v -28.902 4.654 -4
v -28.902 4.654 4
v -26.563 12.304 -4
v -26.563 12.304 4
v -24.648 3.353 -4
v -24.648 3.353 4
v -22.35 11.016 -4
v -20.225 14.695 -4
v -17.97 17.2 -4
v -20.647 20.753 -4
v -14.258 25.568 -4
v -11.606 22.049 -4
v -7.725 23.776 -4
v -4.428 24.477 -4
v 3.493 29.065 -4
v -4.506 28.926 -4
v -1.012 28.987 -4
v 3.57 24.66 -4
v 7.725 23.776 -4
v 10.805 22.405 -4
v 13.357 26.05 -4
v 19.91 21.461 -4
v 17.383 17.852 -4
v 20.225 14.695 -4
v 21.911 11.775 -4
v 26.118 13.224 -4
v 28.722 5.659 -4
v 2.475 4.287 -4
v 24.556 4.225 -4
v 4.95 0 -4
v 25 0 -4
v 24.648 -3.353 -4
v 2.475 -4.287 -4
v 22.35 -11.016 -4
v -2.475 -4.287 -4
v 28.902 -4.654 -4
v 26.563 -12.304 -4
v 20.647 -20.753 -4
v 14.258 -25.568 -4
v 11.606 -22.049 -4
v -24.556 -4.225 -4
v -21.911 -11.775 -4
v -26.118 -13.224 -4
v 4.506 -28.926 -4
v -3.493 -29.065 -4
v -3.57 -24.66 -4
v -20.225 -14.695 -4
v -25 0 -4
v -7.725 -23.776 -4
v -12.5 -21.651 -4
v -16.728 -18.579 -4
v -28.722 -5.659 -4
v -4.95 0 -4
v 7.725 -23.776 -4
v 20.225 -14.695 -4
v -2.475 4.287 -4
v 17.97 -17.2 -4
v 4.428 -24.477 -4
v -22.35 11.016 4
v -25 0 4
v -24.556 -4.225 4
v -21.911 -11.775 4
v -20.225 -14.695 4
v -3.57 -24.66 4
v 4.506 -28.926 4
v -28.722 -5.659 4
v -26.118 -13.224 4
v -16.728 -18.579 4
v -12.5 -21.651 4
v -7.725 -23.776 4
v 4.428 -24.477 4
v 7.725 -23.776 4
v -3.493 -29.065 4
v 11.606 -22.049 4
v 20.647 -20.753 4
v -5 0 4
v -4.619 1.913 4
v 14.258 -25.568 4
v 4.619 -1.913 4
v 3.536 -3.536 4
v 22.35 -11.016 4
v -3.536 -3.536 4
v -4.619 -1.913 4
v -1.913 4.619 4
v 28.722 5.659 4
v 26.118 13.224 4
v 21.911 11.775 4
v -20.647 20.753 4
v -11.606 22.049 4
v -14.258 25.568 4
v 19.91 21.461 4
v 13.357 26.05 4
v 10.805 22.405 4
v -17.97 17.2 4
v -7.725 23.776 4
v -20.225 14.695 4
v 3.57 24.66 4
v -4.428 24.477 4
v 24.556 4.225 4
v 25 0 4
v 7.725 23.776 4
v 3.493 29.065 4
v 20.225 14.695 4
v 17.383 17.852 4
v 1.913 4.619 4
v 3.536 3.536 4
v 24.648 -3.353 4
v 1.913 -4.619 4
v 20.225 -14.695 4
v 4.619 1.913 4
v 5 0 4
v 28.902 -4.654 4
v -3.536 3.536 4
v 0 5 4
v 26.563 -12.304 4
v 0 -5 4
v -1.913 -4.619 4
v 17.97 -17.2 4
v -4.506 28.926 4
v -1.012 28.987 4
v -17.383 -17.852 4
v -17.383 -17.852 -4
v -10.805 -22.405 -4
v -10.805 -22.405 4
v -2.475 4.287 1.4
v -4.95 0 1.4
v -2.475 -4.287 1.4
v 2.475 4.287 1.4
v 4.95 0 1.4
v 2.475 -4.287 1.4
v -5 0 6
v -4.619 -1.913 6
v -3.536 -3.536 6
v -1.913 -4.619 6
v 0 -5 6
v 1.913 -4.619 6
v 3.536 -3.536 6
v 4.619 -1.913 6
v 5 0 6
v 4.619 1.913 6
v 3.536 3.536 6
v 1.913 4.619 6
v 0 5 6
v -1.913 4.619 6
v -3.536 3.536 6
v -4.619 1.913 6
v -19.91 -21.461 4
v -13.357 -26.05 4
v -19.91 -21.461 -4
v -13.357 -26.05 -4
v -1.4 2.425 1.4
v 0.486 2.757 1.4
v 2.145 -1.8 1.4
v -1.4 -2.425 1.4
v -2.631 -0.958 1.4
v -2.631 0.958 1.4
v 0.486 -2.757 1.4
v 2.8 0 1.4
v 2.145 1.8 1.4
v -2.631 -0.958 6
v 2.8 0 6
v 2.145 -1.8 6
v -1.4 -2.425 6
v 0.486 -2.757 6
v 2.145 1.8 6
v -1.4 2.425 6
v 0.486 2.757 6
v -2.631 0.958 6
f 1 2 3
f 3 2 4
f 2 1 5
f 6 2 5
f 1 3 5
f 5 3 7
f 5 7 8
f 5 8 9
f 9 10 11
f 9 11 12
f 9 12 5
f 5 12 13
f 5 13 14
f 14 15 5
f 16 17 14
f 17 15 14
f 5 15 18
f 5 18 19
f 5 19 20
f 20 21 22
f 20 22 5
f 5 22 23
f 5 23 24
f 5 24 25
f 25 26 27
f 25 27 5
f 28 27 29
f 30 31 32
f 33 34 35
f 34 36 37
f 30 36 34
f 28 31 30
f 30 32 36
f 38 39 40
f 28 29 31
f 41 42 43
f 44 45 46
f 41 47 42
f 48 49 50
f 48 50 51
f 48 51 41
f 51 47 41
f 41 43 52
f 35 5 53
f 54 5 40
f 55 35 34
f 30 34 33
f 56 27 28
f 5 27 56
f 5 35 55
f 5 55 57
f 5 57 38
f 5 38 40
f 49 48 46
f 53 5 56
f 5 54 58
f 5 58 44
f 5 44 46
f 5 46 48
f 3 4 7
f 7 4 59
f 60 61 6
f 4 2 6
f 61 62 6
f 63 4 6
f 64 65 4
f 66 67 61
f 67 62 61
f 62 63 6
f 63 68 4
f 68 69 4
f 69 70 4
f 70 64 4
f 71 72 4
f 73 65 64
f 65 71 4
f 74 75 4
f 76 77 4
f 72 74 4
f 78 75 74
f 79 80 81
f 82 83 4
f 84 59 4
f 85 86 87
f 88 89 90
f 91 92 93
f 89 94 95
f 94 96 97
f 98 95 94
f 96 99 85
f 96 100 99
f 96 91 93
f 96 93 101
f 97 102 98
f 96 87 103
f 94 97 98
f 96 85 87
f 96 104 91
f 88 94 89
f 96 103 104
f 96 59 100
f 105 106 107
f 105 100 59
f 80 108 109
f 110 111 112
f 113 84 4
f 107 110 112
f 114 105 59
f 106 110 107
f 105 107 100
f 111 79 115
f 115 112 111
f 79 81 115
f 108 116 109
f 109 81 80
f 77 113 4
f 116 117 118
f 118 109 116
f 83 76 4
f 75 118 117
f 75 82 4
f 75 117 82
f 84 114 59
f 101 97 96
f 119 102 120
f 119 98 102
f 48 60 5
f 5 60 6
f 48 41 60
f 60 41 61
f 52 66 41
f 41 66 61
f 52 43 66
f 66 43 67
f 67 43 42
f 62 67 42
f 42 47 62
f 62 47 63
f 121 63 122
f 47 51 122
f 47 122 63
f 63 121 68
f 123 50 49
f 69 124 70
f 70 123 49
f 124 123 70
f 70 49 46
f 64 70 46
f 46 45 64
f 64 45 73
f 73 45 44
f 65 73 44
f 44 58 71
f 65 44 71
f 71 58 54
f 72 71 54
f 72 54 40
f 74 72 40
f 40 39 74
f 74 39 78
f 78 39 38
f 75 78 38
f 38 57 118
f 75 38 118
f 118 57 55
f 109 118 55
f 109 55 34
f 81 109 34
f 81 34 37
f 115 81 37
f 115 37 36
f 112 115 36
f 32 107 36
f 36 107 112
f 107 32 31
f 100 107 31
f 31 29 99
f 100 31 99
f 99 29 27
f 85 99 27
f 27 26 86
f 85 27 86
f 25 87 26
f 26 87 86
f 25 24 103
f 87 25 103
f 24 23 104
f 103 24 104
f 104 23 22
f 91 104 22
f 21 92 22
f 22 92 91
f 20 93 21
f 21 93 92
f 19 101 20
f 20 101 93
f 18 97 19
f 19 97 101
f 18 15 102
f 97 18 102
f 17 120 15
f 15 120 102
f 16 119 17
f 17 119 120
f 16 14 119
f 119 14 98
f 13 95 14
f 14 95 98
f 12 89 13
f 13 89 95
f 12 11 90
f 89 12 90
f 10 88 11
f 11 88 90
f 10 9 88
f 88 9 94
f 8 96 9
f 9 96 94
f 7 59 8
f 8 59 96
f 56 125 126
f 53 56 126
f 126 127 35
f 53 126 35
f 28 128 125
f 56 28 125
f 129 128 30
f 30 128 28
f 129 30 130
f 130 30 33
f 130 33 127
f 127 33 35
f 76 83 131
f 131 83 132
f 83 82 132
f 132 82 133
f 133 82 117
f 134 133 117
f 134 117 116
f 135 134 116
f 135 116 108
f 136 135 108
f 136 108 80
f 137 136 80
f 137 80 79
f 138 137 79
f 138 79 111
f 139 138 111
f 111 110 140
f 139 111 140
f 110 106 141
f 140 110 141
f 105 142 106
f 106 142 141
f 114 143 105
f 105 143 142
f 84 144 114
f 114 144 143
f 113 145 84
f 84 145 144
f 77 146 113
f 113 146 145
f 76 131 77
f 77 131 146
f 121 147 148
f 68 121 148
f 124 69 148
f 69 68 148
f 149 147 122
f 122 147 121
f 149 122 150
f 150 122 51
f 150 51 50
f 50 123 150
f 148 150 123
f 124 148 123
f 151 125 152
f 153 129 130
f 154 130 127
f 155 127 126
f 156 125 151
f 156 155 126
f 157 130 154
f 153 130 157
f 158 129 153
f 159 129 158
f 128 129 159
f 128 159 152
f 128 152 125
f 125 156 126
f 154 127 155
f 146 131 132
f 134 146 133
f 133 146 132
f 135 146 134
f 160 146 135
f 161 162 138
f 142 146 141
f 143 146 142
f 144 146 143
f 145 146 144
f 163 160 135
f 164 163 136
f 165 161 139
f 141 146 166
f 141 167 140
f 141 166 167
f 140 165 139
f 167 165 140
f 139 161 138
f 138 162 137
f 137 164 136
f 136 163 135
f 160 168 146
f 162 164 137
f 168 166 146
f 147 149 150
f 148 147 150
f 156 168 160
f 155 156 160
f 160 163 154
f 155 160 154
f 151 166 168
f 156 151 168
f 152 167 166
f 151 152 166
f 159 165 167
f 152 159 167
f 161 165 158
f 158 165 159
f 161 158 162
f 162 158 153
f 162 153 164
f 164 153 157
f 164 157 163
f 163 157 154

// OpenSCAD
knobHeight=8;
numberOfGrips=10;
gripRadius=knobHeight;
knobRadius=50/2;

hubRadius=10/2;

hubHeight=2;


knob();

module knob(){
	difference(){
		union() {
			grip();
			translate([0,0,-knobHeight/2])cylinder(h=knobHeight, r=knobRadius);
			#translate([0,0,knobHeight/2])cylinder(h=hubHeight, r=hubRadius);
		}
		difference(){
			#translate([0,0,knobHeight/2])cylinder(h=knobHeight*2, r=knobRadius*2);
			translate([0,0,knobHeight/2])cylinder(h=hubHeight, r=hubRadius);
		}
		translate([0,0,-(knobHeight*2)-knobHeight/2])cylinder(h=knobHeight*2, r=knobRadius*2);
		#translate([0,0,-knobHeight/2])m5Screw();
	}
}

module grip(){
	for ( i = [0 : numberOfGrips] )
	{
	    rotate( i * 360 / numberOfGrips+1, [0, 0, 1])
	    translate([0, knobRadius, 0])
//	    sphere(r = gripRadius, $fn=15);
	    cube([gripRadius,gripRadius,gripRadius],center=true);
	}
}

module m5Screw(h=15) {
	union() {
		translate([0,0,5])cylinder(h=h+5,r=5.6/2);
//		cylinder(h=5,r=3.6/2);
//		#translate([0,0,h-0.4])cylinder(h=5.5,r=6.3/2);
		translate([0,0,-0.1])cylinder(h=5.5,r=9.9/2,$fn=6);
	}
}
